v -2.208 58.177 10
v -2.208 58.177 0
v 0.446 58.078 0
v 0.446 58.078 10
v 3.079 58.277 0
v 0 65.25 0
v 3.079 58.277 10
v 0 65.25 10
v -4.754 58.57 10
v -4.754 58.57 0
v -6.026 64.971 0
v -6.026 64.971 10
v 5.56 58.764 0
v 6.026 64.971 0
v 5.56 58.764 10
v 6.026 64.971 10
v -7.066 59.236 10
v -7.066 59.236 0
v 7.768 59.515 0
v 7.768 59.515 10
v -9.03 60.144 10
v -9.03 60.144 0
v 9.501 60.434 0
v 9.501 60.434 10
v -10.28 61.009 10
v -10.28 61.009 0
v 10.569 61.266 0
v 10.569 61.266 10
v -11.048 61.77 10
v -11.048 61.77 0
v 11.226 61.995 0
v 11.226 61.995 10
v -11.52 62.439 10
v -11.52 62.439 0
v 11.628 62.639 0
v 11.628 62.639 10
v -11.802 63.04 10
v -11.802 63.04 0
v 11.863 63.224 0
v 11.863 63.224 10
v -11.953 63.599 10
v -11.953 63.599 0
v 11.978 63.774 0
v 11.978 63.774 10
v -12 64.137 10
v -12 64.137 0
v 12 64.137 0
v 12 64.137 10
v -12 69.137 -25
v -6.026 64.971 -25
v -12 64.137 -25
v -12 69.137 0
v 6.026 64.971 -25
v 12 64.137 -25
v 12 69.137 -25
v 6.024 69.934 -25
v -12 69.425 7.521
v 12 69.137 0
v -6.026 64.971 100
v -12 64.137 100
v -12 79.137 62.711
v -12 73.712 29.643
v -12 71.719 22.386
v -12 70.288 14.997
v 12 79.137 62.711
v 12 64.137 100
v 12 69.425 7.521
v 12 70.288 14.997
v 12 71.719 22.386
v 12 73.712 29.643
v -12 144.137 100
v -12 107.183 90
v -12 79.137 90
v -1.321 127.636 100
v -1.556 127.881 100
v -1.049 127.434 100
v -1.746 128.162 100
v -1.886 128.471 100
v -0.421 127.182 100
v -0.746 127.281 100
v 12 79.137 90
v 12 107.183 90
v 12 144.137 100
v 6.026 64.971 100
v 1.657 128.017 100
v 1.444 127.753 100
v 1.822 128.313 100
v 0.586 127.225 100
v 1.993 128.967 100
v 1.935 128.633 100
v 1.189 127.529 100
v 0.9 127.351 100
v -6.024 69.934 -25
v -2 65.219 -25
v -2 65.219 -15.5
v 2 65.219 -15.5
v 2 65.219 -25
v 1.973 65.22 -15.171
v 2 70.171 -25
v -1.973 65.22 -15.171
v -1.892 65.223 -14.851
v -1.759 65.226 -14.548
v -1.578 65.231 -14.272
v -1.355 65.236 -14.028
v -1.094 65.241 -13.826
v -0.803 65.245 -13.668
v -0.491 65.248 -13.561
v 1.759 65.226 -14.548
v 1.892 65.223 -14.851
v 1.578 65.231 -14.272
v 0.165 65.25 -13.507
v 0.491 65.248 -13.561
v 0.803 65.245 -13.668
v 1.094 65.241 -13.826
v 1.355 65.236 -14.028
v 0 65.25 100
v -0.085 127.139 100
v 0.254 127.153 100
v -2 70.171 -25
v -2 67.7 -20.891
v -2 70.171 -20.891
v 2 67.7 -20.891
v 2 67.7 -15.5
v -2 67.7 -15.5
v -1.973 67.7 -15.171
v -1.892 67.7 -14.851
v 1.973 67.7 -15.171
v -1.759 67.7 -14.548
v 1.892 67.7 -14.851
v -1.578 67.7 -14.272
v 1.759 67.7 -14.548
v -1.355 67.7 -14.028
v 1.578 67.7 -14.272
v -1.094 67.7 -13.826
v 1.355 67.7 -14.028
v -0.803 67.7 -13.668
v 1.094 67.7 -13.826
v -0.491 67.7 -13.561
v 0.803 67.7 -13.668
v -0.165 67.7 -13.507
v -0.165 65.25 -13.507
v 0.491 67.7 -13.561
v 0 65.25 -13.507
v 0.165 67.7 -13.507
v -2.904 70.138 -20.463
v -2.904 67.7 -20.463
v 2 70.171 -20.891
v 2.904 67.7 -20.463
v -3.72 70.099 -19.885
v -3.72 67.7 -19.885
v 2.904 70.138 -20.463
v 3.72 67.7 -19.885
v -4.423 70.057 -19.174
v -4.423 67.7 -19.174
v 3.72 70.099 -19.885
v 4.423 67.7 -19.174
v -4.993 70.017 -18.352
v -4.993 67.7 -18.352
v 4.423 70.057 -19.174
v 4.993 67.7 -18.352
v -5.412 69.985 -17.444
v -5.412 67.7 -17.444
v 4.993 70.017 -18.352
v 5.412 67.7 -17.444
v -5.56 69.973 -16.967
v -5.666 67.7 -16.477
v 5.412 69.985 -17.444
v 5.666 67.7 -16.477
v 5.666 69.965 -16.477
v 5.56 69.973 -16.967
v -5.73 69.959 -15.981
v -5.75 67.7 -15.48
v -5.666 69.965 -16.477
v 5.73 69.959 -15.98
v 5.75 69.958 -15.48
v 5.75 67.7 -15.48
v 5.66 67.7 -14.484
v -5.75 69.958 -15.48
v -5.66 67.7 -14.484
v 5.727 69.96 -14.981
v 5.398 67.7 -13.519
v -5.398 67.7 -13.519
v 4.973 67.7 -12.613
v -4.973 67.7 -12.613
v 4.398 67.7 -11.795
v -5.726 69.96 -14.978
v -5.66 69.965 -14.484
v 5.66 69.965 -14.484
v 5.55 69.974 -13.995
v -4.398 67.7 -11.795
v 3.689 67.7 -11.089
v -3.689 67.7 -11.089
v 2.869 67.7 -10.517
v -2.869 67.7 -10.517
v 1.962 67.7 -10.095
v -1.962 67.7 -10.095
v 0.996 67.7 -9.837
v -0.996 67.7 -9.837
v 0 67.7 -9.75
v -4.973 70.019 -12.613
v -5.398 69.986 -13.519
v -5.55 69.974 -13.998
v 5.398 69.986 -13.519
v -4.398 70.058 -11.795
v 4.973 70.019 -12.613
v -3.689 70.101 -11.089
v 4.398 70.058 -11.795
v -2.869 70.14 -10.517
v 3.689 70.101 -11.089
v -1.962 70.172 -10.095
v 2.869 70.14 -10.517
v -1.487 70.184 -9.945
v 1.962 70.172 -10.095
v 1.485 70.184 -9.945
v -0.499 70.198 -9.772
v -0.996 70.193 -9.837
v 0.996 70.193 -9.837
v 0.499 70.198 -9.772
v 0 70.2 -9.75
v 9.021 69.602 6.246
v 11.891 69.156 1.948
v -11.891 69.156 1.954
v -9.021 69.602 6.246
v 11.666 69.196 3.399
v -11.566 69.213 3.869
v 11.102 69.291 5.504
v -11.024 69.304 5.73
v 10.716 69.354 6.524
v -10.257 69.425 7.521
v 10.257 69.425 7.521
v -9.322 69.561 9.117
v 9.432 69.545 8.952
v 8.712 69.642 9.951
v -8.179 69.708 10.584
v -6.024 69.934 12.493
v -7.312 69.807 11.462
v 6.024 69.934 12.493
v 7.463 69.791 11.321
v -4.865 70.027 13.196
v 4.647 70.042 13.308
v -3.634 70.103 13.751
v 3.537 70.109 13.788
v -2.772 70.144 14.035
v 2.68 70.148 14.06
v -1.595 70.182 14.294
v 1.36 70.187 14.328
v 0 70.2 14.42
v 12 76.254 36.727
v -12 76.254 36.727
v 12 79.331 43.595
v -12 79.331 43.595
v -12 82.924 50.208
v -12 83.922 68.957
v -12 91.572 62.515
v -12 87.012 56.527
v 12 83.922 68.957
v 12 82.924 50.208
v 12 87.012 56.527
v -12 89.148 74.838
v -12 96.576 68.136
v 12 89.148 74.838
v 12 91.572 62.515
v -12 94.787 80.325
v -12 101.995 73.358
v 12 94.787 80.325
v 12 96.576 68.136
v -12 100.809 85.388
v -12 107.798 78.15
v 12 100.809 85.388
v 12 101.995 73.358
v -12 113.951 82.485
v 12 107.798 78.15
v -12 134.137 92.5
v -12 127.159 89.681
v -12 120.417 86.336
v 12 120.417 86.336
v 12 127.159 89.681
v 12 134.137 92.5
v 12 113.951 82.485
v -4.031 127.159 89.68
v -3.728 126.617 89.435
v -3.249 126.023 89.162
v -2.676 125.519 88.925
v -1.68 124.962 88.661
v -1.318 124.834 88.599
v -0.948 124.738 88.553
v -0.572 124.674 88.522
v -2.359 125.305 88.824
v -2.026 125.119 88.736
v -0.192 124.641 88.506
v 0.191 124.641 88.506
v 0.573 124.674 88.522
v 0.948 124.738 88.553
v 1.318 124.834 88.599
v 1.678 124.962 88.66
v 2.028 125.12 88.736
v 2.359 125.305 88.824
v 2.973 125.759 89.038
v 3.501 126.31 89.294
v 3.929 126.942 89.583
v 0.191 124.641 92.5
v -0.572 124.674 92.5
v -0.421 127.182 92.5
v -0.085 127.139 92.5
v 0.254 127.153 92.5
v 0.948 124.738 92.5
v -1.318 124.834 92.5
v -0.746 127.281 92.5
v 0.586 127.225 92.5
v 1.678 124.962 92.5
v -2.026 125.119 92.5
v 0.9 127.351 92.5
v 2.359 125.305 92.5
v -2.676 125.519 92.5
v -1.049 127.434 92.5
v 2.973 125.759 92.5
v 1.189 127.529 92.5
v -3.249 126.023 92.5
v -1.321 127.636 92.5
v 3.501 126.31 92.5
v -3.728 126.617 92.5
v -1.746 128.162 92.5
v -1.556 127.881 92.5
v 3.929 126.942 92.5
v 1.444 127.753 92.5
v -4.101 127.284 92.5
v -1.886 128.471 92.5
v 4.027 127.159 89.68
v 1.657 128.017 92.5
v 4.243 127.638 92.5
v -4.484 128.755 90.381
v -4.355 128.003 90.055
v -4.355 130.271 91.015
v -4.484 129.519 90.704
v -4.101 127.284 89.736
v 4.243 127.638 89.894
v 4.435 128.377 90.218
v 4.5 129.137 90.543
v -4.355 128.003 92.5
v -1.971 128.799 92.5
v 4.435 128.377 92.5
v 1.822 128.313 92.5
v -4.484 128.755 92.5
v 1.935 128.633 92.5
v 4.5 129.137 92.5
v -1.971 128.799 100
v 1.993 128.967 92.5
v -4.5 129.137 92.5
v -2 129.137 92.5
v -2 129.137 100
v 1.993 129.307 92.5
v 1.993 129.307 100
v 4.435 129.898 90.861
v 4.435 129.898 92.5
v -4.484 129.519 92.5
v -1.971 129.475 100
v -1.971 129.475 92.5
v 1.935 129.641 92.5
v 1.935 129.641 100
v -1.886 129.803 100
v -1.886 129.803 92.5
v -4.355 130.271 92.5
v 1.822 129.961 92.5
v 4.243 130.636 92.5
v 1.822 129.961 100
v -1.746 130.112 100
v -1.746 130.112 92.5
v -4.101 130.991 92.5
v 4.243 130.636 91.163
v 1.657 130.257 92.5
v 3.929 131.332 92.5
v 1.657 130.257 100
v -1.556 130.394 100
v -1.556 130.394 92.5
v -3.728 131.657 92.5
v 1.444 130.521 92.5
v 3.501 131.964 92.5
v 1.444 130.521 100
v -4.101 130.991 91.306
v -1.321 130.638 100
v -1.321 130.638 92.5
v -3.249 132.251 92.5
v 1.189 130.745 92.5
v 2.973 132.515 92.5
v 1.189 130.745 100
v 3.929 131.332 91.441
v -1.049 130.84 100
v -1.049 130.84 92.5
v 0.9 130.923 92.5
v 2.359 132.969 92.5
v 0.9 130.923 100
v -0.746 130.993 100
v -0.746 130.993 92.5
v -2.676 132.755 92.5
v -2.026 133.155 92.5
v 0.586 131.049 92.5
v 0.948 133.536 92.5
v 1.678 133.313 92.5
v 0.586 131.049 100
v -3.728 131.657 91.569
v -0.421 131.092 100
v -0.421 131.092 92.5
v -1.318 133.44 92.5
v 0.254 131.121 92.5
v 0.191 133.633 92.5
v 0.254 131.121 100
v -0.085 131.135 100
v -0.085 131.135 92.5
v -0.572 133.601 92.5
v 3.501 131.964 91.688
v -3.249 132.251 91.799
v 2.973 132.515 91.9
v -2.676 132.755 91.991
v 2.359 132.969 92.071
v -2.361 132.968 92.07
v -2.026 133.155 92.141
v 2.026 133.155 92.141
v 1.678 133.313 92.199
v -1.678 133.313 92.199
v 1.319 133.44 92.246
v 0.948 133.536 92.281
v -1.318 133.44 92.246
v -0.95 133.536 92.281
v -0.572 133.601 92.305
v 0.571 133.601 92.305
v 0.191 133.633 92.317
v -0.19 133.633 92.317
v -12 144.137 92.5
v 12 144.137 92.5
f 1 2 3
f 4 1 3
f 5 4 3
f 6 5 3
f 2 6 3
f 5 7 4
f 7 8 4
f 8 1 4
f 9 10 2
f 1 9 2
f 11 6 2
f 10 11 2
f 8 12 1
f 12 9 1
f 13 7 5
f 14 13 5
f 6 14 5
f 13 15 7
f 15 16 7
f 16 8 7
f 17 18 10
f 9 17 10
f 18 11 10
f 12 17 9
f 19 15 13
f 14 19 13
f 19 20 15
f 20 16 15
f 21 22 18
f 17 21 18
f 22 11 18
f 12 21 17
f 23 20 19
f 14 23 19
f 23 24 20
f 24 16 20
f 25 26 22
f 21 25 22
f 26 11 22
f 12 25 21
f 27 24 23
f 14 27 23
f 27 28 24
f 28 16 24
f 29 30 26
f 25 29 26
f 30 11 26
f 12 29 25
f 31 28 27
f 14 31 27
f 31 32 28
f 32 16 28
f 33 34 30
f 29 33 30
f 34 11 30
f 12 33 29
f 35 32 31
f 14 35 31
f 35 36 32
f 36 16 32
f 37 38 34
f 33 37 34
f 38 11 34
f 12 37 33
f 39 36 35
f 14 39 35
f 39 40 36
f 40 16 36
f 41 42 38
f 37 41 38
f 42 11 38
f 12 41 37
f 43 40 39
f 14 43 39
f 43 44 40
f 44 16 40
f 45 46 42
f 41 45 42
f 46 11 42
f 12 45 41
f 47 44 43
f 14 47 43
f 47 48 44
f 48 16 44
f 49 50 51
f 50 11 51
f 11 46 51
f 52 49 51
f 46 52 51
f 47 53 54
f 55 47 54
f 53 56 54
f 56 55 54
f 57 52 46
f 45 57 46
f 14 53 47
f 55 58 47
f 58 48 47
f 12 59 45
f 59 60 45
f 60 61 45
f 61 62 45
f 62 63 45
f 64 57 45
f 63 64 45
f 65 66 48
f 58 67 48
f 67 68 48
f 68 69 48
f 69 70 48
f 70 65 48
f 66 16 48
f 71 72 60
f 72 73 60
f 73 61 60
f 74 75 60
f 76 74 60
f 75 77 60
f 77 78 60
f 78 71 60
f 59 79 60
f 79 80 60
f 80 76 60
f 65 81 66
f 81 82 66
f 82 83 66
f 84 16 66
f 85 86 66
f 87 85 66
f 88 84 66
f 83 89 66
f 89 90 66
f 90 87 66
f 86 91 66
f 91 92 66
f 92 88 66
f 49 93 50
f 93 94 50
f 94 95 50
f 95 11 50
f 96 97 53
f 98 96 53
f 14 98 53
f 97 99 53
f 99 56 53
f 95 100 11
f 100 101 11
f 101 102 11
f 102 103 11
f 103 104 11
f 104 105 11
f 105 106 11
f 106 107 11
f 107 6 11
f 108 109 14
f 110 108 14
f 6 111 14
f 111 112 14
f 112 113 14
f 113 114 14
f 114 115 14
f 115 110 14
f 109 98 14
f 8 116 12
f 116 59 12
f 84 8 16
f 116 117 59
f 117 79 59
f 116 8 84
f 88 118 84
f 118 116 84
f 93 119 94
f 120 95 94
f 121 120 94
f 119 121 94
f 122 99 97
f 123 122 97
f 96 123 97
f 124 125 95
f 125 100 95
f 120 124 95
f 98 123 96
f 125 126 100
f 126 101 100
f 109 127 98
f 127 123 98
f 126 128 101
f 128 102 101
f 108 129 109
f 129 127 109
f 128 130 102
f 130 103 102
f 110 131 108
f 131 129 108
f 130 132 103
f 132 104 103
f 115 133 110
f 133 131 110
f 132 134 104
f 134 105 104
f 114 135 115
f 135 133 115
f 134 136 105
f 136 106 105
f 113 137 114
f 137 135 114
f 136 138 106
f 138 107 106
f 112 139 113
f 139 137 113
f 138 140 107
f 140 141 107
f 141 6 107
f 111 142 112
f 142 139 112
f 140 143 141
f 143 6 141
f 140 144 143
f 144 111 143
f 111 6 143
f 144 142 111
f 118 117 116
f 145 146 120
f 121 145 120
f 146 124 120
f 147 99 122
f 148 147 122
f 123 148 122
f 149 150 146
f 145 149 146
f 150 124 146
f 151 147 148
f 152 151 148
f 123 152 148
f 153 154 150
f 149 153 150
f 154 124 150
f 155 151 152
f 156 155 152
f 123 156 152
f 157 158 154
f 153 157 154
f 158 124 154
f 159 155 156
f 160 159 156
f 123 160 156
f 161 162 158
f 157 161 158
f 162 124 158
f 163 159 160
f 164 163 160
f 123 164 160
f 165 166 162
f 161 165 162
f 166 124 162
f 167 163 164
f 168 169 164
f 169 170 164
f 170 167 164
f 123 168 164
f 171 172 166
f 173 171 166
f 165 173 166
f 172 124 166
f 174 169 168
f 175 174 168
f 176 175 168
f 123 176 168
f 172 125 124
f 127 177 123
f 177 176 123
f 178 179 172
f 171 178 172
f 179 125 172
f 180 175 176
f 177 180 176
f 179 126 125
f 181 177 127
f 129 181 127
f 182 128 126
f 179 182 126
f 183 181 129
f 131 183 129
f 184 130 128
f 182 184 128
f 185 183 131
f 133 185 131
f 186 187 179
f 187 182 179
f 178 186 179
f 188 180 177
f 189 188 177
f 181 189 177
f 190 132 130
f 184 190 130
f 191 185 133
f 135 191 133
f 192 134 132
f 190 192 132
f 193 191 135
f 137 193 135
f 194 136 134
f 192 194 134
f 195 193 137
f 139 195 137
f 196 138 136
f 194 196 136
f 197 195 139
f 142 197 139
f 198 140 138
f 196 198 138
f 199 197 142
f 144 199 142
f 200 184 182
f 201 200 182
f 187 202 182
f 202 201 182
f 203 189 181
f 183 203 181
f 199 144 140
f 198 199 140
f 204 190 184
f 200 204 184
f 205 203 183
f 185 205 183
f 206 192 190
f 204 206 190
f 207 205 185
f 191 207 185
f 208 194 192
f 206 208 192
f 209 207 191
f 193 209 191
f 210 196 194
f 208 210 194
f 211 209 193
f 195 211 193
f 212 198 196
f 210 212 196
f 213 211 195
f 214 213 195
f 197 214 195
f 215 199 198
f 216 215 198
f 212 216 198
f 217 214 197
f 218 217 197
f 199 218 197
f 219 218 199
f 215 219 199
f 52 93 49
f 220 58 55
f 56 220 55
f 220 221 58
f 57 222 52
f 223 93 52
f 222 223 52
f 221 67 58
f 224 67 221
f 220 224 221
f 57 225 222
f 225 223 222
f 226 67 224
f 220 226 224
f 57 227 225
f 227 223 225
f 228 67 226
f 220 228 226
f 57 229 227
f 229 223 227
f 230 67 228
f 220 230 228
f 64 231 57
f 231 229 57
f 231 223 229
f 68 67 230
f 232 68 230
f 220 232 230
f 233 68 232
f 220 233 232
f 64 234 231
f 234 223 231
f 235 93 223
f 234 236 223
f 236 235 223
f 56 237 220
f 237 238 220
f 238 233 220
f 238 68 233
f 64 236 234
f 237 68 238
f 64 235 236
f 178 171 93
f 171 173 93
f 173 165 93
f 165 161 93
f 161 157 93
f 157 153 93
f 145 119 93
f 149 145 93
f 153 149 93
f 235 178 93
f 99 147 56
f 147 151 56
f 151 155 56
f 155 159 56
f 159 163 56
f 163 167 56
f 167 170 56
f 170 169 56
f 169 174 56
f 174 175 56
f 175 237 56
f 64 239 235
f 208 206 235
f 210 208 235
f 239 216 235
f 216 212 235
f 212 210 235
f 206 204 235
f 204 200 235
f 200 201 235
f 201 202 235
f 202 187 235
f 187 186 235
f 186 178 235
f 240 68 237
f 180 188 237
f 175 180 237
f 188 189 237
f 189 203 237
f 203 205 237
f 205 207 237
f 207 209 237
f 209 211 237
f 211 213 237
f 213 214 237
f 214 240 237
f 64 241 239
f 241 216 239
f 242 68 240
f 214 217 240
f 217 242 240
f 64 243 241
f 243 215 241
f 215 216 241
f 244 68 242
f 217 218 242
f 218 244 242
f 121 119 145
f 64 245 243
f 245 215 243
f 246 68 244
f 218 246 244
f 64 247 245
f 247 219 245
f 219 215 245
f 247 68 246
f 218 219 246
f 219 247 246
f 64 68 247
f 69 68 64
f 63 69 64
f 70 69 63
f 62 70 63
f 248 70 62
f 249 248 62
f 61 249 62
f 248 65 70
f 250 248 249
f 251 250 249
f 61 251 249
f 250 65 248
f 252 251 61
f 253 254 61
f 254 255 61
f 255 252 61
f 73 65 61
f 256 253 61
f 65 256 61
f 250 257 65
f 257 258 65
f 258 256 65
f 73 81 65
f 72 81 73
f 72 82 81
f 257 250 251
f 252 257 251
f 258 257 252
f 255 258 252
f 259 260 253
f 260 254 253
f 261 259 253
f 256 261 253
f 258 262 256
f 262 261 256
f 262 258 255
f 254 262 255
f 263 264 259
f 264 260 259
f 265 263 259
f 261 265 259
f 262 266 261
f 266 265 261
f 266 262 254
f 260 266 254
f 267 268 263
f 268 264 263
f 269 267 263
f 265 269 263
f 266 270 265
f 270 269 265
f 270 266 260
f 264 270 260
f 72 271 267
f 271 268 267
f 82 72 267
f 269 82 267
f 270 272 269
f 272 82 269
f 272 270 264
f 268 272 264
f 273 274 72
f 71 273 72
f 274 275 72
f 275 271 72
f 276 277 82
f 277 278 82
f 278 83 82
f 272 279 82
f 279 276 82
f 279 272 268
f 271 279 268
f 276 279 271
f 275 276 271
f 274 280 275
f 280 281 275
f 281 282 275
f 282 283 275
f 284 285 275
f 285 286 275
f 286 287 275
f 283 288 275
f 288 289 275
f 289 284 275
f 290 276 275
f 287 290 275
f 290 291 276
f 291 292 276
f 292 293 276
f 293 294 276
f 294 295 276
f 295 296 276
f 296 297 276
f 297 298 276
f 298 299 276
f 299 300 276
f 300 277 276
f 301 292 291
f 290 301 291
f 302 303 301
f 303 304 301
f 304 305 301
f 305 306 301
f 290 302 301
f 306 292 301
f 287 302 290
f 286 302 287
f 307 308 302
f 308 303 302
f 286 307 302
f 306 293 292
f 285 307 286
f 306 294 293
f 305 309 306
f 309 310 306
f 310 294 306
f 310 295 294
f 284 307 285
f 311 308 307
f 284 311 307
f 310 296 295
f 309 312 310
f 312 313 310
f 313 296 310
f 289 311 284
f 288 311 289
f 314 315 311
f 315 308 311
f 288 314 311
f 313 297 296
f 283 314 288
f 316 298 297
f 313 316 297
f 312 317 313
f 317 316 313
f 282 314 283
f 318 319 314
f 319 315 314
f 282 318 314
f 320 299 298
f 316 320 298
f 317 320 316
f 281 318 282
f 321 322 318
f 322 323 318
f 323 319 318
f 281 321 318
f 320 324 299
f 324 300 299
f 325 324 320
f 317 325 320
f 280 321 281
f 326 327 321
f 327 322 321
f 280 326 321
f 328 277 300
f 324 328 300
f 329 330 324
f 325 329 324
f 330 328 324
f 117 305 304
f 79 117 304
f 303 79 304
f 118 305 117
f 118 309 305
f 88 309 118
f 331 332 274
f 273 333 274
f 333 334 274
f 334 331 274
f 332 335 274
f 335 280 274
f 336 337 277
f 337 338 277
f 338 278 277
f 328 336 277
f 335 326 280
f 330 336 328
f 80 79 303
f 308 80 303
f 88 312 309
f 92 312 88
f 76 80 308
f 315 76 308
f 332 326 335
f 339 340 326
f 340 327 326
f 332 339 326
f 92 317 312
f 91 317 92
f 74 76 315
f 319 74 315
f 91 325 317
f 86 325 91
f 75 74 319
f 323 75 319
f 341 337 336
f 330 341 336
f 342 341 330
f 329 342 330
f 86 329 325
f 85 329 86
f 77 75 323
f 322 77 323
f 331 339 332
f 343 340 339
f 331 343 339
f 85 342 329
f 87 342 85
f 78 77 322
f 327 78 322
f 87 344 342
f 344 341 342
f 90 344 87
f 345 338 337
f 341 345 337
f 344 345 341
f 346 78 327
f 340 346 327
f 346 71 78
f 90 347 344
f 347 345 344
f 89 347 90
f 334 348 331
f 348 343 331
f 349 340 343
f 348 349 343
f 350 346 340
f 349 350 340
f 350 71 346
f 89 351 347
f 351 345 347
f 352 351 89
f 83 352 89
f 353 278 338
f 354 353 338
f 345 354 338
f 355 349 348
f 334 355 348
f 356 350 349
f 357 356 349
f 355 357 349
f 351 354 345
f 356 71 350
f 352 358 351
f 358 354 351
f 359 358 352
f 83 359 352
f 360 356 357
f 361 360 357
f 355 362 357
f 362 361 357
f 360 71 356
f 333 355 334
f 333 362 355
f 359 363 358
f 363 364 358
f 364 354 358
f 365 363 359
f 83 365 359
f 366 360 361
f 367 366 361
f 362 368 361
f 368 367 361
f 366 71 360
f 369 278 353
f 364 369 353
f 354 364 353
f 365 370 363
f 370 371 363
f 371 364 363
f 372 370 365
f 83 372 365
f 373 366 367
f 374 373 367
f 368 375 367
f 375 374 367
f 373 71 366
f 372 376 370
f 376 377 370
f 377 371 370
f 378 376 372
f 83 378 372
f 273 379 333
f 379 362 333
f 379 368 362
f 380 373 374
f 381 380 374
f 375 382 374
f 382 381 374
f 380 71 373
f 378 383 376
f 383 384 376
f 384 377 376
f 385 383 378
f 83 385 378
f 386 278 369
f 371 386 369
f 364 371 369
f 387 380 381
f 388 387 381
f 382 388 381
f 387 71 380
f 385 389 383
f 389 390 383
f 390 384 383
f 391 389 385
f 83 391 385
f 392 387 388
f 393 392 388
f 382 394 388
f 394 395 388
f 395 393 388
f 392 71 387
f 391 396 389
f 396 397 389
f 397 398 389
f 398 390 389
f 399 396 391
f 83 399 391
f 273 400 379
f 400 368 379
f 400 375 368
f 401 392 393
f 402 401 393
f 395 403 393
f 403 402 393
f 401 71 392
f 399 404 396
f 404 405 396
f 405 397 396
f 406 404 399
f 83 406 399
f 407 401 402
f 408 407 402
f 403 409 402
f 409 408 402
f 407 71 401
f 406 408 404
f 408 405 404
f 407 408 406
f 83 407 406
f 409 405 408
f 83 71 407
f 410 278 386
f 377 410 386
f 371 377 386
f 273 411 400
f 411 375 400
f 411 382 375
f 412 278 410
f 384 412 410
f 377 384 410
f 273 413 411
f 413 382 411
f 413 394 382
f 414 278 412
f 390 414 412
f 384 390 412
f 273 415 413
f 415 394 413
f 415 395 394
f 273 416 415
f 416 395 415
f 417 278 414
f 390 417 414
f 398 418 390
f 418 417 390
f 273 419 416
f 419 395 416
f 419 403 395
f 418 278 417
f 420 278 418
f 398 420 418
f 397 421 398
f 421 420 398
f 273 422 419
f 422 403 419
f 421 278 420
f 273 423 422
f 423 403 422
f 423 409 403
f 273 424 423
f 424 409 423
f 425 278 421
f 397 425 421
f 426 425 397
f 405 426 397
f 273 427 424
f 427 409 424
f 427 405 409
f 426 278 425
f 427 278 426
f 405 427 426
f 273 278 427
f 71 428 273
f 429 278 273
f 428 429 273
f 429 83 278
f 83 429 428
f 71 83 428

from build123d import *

# Parameters (mm, degrees)
BOSS_EXTRUDE1_DEPTH      = 100
BOSS_EXTRUDE1_DEPTH_BACK = 25
BOSS_EXTRUDE2_DEPTH      = 10
BOSS_EXTRUDE4_DEPTH      = 24
CUT_EXTRUDE3_DEPTH       = 74.936773252
CUT_EXTRUDE3_DEPTH_BACK  = 13.126453596
SKETCH9_R                = 5.75
CUT_EXTRUDE4_DEPTH       = 2.5
SKETCH10_R               = 2
CUT_EXTRUDE5_DEPTH       = 118.5000001
CUT_EXTRUDE5_DEPTH_BACK  = 8.5
SKETCH11_R               = 4.5
CUT_EXTRUDE6_DEPTH       = 118.5000001


with BuildPart() as part:
    # Sketch1 → Boss-Extrude1 (new body, two sides)
    with BuildSketch(Plane.XY) as boss_extrude1_sk:
        with BuildLine():
            Line((-12, 69.137060269), (-12, 64.137060269))
            ThreePointArc((-12, 64.137060269), (0, 65.25), (12, 64.137060269))
            Line((12, 64.137060269), (12, 69.137060269))
            ThreePointArc((12, 69.137060269), (0, 70.200287018), (-12, 69.137060269))
        make_face()
    extrude(amount=BOSS_EXTRUDE1_DEPTH)
    extrude(boss_extrude1_sk.sketch, amount=-BOSS_EXTRUDE1_DEPTH_BACK)

    # Sketch2 → Boss-Extrude2 (add)
    with BuildSketch(Plane.XY):
        with BuildLine():
            ThreePointArc((12, 64.137060269), (0, 65.25), (-12, 64.137060269))
            add(Edge.make_bspline(
                [(-12, 64.137060269), (-12, 58.073833521), (0, 58.073833521), (12, 58.073833521), (12, 64.137060269)],
                knots=[3.141592654, 3.141592654, 3.141592654, 4.71238898, 4.71238898, 6.283185307, 6.283185307, 6.283185307], degree=2, weights=[1, 0.707106781, 1, 0.707106781, 1]))
        make_face()
    extrude(amount=BOSS_EXTRUDE2_DEPTH)

    # Sketch3 → Boss-Extrude4 (add)
    with BuildSketch(Plane.ZY.offset(12)):
        with BuildLine():
            Line((92.5, 134.137060269), (92.5, 144.137060269))
            Line((92.5, 144.137060269), (100, 144.137060269))
            Line((100, 144.137060269), (100, 69.137060269))
            Line((100, 69.137060269), (0, 69.137060269))
            ThreePointArc((0, 69.137060269), (56.527095273, 87.01196315), (92.5, 134.137060269))
        make_face()
        with BuildLine():
            Line((90, 79.137060269), (90, 107.182988803))
            ThreePointArc((90, 107.182988803), (77.632594826, 91.917493745), (62.71118168, 79.137060269))
            Line((62.71118168, 79.137060269), (90, 79.137060269))
        make_face(mode=Mode.SUBTRACT)
    extrude(amount=-BOSS_EXTRUDE4_DEPTH)

    # Sketch8 → Cut-Extrude3 (cut, two sides)
    with BuildSketch(Plane(origin=(0, 70.200287018, -25), x_dir=(1, 0, 0), z_dir=(0, 1, 0))) as cut_extrude3_sk:
        with BuildLine():
            Line((2, -9.5), (2, 0))
            Line((2, 0), (-2, 0))
            Line((-2, 0), (-2, -9.5))
            ThreePointArc((-2, -9.5), (0, -11.5), (2, -9.5))
        make_face()
    extrude(amount=CUT_EXTRUDE3_DEPTH, mode=Mode.SUBTRACT)
    extrude(cut_extrude3_sk.sketch, amount=-CUT_EXTRUDE3_DEPTH_BACK, mode=Mode.SUBTRACT)

    # Sketch9 → Cut-Extrude4 (cut)
    with BuildSketch(Plane(origin=(0, 70.200287018, -25), x_dir=(1, 0, 0), z_dir=(0, 1, 0))):
        with Locations((0, -9.5)):
            Circle(SKETCH9_R)
    extrude(amount=-CUT_EXTRUDE4_DEPTH, mode=Mode.SUBTRACT)

    # Sketch10 → Cut-Extrude5 (cut, two sides)
    with BuildSketch(Plane(origin=(0, 0, 92.5), x_dir=(-1, 0, 0), z_dir=(0, 0, -1))) as cut_extrude5_sk:
        with Locations((0, 129.137060269)):
            Circle(SKETCH10_R)
    extrude(amount=CUT_EXTRUDE5_DEPTH, mode=Mode.SUBTRACT)
    extrude(cut_extrude5_sk.sketch, amount=-CUT_EXTRUDE5_DEPTH_BACK, mode=Mode.SUBTRACT)

    # Sketch11 → Cut-Extrude6 (cut, through all)
    with BuildSketch(Plane(origin=(0, 0, 92.5), x_dir=(-1, 0, 0), z_dir=(0, 0, -1))):
        with Locations((0, 129.137060269)):
            Circle(SKETCH11_R)
    extrude(amount=CUT_EXTRUDE6_DEPTH, mode=Mode.SUBTRACT)


solid = part.part
